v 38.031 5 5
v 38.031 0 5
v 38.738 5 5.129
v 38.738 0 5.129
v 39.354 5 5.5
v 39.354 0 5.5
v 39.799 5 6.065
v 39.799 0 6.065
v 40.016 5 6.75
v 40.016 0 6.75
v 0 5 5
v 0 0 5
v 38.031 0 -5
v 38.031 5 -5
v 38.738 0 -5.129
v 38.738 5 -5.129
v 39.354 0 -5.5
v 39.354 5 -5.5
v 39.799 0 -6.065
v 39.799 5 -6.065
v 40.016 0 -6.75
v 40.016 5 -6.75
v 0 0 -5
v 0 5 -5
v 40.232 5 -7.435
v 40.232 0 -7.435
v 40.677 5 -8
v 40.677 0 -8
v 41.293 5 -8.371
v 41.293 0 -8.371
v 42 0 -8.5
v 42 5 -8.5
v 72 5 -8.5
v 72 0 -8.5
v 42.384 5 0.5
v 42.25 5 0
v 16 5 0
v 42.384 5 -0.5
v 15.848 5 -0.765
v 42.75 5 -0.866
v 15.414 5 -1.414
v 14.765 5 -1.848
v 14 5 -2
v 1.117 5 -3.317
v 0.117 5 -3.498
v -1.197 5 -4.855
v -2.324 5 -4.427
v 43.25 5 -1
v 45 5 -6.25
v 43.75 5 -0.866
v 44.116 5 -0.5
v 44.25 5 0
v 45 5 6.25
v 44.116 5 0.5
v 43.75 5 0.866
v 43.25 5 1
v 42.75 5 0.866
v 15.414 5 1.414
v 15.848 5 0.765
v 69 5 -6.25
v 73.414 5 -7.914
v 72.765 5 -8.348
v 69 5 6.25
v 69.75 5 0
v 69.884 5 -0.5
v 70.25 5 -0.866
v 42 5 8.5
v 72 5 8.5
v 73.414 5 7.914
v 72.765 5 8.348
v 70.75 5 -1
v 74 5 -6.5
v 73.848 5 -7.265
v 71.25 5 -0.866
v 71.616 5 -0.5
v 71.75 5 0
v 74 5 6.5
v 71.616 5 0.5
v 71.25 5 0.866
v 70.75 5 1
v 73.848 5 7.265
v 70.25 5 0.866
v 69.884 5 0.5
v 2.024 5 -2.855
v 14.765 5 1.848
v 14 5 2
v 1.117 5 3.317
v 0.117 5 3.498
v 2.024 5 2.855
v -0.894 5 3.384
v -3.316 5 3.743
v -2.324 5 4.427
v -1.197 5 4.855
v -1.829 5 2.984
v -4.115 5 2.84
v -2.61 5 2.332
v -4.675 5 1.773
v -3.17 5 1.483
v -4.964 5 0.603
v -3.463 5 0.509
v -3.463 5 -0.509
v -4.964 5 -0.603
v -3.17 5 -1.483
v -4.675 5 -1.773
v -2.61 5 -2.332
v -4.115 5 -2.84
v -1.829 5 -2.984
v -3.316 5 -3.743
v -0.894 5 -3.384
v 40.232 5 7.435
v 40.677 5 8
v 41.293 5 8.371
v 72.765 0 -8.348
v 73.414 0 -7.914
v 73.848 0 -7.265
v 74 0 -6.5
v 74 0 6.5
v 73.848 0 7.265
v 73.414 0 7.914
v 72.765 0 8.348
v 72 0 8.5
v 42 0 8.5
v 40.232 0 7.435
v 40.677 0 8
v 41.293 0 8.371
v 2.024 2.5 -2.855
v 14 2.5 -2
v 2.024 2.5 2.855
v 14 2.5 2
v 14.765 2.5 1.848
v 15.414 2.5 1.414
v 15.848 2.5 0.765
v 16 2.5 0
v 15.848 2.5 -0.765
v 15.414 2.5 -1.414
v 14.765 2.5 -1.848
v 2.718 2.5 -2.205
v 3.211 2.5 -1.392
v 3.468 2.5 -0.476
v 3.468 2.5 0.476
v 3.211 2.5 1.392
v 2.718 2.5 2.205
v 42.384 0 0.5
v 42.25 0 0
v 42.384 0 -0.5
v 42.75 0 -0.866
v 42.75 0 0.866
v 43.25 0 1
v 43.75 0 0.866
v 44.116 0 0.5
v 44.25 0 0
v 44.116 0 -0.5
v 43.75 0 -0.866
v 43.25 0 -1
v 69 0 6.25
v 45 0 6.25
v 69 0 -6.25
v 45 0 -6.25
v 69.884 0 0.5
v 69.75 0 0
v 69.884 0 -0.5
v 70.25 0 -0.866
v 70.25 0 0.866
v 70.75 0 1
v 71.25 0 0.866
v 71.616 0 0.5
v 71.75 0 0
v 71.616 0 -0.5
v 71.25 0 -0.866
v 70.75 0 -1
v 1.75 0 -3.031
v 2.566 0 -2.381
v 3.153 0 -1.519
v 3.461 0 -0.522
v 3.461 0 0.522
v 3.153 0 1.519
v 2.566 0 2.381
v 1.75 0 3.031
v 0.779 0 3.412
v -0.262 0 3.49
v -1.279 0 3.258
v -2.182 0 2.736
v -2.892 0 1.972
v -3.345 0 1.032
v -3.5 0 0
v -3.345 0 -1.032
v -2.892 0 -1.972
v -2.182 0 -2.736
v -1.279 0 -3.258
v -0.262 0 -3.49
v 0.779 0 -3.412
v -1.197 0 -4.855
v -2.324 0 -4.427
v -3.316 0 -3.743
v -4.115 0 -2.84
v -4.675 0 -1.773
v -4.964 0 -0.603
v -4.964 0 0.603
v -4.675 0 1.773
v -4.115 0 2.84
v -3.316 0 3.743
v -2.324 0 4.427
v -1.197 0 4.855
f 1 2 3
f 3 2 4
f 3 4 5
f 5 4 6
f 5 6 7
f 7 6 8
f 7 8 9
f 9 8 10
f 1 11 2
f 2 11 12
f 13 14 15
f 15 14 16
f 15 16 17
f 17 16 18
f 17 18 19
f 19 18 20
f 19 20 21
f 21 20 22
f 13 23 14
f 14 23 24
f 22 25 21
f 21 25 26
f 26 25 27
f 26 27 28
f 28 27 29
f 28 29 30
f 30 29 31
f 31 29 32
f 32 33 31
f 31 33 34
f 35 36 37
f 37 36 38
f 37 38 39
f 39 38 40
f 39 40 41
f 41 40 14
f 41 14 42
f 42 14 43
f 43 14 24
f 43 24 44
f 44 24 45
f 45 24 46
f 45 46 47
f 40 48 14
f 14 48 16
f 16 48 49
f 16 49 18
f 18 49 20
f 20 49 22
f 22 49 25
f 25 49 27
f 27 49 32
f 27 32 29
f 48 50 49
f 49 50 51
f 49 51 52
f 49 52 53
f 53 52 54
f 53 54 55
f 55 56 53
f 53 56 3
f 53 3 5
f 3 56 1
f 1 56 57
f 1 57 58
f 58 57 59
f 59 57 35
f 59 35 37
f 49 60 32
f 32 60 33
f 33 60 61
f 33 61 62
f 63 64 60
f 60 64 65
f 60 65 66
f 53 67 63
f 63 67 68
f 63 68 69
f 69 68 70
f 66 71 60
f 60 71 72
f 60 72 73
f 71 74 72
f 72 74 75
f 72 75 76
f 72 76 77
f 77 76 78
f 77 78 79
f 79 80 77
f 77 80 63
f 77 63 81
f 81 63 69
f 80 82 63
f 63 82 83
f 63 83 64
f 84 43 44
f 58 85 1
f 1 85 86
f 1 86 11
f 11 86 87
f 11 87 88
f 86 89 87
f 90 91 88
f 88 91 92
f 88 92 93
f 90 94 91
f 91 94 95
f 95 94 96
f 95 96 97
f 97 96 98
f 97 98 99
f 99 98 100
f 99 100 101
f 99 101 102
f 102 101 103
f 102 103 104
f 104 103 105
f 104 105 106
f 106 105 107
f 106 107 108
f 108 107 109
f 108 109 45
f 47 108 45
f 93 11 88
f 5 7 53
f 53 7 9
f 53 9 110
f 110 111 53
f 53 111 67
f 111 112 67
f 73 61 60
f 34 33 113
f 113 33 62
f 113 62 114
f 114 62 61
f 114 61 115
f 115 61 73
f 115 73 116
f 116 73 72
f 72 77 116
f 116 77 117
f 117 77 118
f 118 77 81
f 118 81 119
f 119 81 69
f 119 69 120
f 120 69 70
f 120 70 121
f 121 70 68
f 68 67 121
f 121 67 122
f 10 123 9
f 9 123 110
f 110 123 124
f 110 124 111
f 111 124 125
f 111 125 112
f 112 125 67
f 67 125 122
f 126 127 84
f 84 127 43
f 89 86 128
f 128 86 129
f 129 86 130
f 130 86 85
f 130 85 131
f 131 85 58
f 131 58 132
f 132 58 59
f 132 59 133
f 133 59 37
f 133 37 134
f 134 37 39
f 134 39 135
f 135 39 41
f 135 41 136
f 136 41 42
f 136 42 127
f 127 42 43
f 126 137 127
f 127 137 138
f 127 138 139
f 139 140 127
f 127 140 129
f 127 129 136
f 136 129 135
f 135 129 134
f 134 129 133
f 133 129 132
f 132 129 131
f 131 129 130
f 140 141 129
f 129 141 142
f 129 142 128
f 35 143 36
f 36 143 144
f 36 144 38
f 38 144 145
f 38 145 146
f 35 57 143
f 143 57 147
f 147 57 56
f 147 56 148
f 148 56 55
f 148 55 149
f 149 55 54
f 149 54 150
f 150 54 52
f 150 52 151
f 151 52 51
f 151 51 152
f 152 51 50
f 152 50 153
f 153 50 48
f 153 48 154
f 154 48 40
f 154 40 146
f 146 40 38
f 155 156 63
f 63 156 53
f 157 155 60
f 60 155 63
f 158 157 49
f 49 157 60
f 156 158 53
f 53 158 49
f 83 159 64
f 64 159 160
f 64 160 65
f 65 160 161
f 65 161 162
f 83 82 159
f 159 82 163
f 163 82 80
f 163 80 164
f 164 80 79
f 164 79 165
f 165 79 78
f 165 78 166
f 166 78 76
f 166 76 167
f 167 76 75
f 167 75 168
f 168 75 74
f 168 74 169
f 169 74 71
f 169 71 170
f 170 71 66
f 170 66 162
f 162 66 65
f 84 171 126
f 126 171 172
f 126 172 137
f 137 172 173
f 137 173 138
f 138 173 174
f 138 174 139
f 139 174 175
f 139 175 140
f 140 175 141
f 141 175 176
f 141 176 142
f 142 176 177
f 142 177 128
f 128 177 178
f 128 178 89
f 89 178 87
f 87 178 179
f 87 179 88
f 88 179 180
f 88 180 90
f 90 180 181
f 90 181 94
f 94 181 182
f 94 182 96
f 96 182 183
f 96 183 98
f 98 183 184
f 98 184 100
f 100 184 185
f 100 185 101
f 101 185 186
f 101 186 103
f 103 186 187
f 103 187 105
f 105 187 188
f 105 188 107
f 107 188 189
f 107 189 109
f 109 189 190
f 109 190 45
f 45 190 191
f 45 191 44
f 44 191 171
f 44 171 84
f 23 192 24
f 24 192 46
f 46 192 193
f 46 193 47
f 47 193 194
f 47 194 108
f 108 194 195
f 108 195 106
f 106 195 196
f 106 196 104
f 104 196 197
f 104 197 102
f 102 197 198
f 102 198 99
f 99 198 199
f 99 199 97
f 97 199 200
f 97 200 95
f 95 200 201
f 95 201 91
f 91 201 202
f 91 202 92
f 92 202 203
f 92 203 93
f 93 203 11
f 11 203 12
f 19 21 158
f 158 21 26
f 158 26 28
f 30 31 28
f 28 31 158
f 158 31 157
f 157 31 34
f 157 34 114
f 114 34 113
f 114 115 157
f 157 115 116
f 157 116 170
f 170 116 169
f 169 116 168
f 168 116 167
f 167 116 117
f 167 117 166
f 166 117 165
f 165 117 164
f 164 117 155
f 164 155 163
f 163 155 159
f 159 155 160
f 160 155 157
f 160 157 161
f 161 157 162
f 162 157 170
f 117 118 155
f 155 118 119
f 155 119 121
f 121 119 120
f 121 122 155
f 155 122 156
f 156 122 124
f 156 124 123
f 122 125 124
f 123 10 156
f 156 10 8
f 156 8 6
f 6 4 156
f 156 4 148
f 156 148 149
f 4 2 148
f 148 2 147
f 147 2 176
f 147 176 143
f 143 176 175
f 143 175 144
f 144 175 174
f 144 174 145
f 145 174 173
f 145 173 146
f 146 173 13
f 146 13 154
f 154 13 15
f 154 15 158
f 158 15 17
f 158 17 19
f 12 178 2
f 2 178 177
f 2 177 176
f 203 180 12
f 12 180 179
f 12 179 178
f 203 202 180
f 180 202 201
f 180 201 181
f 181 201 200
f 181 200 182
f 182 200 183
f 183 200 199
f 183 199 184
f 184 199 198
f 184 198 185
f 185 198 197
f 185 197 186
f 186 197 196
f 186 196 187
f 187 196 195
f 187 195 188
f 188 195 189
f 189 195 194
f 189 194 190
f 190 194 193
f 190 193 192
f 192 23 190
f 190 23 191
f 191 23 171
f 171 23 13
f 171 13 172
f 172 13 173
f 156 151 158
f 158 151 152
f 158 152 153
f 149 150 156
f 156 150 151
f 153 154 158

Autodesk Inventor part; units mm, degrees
ref_plane "YZ Plane" through (0, 0, 0) normal (1, 0, 0) x (0, 1, 0)
ref_plane "XZ Plane" through (0, 0, 0) normal (0, 1, 0) x (-1, 0, 0)
ref_plane "XY Plane" through (0, 0, 0) normal (0, 0, 1) x (1, 0, 0)
sketch "Sketch1" plane through (0, 0, 0) normal (0, 1, 0) x (-1, 0, 0)
  circle A0 centre (0, 0) radius 3.5
  line L0 (0, -5) -> (-40, -5)
  line L1 (-40, -5) -> (-40, 5) construction
  line L2 (-40, 5) -> (0, 5)
  line L3 (0, 5) -> (0, -5) construction
  line L4 (-74, -8.5) -> (-40, -8.5)
  line L5 (-40, -8.5) -> (-40, 8.5)
  line L6 (-40, 8.5) -> (-74, 8.5)
  line L7 (-74, 8.5) -> (-74, -8.5)
  line L8 (20.8, 0) -> (-89.8, 0) projected
  line L9 (0, -11.9) -> (0, 11.9) projected
  arc A1 (0, -5) -> (0, 5) centre (0, 0) ccw
  line L10 (0, 0) -> (0, -5) construction
  line L11 (0, 0) -> (5, 0) construction
  line L12 (0, 0) -> (0, 5) construction
  line L13 (-57, -8.5) -> (-57, 8.5) construction
  line L14 (-45, -6.25) -> (-69, -6.25)
  line L15 (-69, -6.25) -> (-69, 6.25)
  line L16 (-69, 6.25) -> (-45, 6.25)
  line L17 (-45, 6.25) -> (-45, -6.25)
  line L18 (-45, -6.25) -> (-69, 6.25) construction
  line L19 (-69, -6.25) -> (-45, 6.25) construction
  line L20 (-43.25, 0) -> (-70.75, 0) construction
  circle A2 centre (-43.25, 0) radius 1
  circle A3 centre (-70.75, 0) radius 1
  point P0 (-40, 0)
  point P1 (-57, 0)
  point P2 (-57, 0)
  dimension "d0" = 7
  dimension "d2" = 5
  dimension "d3" = 90
  dimension "d4" = 180
  dimension "d5" = 24
  dimension "d6" = 12.5
  dimension "d7" = 17
  dimension "d8" = 34
  dimension "d9" = 2
  dimension "d10" = 27.5
  dimension "d11" = 40
extrude "Extrusion1" add sketch "Sketch1" along normal blind 5 contours L8 A1 L9 A0 | A0 L9 A1 L8 | A0 L8 L5 L2 L9 | L9 L0 L5 L8 A0 | L8 A2 L17 L16 L15 A3 L7 L6 L5 | L5 L4 L7 L8 A3 L15 L14 L17 A2
sketch "Sketch2" plane through (0, 5, 0) normal (0, 1, 0) x (1, 0, 0)
  circle A0 centre (0, 0) radius 3
  arc A1 (14, -2) -> (14, 2) centre (14, 0) ccw
  line L0 (14, 0) -> (14, 2) construction
  line L1 (14, 0) -> (16, 0) construction
  line L2 (14, 0) -> (14, -2) construction
  line L3 (0, 11.9) -> (0, -11.9) projected
  line L4 (-20.8, 0) -> (89.8, 0) projected
  line L5 (14, 2) -> (0, 3)
  line L6 (14, -2) -> (0, -3)
  dimension "d14" = 6
  dimension "d16" = 90
  dimension "d17" = 180
  dimension "d18" = 14
  dimension "d22" = 2
extrude "Extrusion2" cut sketch "Sketch2" against normal blind 2.5 contours L4 L3 L5 A0 | L4 A1 L6 A0 | A0 L6 L3 L4 | A0 L5 A1 L4 | L4 A0 L3 | L3 A0 L4
fillet "Fillet1" radius 2 6 edges at (40, 2.5, 8.5) (74, 2.5, 8.5) (74, 2.5, -8.5) (40, 2.5, -8.5) (40, 2.5, -5) (40, 2.5, 5)
properties part number "link2"
